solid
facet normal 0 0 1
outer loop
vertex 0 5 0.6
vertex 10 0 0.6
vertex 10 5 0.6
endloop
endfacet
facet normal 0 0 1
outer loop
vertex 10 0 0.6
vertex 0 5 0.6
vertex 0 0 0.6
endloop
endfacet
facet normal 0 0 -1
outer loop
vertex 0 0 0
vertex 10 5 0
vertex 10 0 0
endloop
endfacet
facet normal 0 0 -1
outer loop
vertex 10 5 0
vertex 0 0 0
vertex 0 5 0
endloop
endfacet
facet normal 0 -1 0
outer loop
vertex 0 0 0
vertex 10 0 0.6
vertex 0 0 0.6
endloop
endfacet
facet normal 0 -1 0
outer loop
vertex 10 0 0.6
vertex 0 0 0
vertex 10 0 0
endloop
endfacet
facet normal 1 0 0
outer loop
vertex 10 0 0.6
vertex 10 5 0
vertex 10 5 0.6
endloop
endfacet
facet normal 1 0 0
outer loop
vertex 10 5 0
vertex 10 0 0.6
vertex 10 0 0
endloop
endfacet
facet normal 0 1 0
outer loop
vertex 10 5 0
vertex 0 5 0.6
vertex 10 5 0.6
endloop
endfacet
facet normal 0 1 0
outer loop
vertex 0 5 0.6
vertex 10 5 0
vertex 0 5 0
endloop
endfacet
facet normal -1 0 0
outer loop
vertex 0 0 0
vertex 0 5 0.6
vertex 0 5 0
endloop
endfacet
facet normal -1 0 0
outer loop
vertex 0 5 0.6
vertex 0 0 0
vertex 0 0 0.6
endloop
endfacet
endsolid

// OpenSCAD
/* Warning, this is a very basic generator with a lot of approximation 
input data : [UFBGA, C6B, 10x5x0.6mm, 162, , A, C04-21167A]
generated by com.zoubworld.electronics.cad.model3d.Basic
Date : Sun Feb 15 10:50:49 CET 2026
*/

//body
color("black")
translate([0,0,0])
cube([10.0,5.0,0.6], center=false);
